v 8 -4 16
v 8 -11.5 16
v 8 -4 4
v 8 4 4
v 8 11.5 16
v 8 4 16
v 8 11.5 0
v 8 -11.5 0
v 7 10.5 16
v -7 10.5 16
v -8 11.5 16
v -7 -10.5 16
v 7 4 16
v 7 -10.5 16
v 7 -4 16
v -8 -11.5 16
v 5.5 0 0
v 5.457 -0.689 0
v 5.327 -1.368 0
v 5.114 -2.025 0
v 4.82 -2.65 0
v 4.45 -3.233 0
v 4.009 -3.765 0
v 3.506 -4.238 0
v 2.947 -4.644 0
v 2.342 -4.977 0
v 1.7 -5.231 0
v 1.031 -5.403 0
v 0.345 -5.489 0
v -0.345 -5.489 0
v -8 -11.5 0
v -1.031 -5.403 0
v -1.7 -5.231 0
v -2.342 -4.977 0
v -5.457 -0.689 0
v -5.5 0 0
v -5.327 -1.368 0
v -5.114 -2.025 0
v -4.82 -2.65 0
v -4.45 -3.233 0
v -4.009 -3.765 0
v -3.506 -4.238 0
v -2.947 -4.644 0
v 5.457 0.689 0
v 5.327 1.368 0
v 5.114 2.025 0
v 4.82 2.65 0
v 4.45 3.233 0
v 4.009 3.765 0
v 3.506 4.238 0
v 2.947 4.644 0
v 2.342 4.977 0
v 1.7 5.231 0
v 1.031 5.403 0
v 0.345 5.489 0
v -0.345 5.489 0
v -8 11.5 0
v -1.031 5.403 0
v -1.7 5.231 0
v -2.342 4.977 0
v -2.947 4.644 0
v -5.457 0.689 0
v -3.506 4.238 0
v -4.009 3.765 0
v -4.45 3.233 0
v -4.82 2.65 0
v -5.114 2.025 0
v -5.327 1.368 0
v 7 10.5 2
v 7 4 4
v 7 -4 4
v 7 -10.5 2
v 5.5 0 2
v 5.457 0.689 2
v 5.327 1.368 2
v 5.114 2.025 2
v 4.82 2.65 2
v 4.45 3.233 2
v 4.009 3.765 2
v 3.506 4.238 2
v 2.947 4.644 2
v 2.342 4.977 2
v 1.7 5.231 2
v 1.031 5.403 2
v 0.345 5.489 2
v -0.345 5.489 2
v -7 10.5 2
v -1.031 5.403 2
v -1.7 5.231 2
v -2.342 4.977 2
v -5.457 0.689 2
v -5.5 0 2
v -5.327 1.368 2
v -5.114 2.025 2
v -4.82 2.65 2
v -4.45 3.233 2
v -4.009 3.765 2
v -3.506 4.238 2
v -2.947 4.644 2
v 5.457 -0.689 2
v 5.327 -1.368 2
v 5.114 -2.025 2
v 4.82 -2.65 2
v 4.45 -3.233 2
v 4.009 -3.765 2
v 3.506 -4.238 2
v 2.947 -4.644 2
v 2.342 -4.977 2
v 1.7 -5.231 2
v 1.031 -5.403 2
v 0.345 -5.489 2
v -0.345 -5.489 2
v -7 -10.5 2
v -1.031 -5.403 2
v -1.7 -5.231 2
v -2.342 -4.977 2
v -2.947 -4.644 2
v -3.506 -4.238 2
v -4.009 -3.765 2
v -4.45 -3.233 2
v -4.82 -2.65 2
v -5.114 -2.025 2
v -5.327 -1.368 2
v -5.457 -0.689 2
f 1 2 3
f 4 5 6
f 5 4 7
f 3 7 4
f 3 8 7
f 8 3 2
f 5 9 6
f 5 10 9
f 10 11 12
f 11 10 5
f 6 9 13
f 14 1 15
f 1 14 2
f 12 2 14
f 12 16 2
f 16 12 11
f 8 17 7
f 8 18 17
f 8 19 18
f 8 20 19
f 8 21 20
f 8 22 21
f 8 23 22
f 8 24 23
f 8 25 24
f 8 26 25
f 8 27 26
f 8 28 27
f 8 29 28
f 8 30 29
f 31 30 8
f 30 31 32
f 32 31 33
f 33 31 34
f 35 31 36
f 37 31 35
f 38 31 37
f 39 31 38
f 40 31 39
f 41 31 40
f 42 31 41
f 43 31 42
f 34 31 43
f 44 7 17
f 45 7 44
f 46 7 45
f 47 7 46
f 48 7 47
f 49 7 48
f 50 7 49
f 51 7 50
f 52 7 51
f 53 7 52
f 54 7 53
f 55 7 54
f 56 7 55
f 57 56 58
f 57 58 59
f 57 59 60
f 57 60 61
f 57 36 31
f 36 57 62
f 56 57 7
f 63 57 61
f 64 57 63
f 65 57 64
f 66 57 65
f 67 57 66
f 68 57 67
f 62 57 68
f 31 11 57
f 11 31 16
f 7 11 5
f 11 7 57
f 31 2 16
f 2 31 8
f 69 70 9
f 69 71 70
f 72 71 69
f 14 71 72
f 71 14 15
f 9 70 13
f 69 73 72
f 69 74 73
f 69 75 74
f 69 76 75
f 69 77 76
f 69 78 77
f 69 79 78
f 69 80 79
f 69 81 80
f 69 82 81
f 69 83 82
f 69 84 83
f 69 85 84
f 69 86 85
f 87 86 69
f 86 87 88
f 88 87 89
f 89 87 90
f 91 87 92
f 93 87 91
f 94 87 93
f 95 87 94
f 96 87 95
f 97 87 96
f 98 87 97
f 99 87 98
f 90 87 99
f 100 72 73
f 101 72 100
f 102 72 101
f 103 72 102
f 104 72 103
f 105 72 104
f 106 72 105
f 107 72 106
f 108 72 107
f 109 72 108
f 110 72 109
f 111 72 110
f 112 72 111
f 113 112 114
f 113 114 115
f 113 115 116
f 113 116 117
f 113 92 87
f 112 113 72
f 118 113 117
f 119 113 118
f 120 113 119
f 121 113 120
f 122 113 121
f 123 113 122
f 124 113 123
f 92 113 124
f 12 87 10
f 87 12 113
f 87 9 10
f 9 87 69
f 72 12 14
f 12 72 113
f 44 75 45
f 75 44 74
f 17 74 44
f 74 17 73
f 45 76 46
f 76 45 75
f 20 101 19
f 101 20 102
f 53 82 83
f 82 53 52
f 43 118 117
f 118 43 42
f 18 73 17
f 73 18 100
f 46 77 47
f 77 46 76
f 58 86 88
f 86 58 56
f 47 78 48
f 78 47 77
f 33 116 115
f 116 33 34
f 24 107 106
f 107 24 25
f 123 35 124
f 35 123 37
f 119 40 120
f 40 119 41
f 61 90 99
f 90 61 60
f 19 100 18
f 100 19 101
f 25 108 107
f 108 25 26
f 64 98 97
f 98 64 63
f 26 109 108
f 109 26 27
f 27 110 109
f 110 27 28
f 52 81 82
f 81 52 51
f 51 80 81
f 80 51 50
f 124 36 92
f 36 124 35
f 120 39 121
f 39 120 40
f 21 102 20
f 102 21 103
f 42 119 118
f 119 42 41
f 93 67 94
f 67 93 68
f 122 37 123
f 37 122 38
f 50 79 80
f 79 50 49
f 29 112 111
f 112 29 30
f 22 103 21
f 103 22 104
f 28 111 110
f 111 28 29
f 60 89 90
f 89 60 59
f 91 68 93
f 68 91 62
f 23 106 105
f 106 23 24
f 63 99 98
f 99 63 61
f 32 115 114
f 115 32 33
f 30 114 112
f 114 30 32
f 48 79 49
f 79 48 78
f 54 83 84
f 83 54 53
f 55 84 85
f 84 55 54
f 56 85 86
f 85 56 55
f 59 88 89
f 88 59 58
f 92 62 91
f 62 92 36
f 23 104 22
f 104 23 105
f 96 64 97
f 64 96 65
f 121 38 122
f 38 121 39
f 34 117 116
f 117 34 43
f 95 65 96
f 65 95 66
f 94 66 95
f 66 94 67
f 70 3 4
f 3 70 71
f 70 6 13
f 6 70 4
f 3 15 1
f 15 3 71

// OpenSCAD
$fn=50;
HOLE=11;
WID=14;
LEN=21;
HT=14;
WALL=2;

NOTCHWID=8;
NOTCHOFFS=8;

module normcube(c) {
    // normalize a cube to be positioned around the origin, like a cylinder.
    translate([-c.x/2,-c.y/2,0]) cube(c);
}

module camera_case() {
    difference() {
        normcube([WID+WALL,LEN+WALL,HT+WALL]);
        translate([0,0,WALL]) normcube([WID,LEN,HT]);
        cylinder(20,d=HOLE);
        #translate([WALL+NOTCHOFFS,0,2*WALL]) normcube([NOTCHWID,NOTCHWID, 20]);
    }
}

camera_case();
